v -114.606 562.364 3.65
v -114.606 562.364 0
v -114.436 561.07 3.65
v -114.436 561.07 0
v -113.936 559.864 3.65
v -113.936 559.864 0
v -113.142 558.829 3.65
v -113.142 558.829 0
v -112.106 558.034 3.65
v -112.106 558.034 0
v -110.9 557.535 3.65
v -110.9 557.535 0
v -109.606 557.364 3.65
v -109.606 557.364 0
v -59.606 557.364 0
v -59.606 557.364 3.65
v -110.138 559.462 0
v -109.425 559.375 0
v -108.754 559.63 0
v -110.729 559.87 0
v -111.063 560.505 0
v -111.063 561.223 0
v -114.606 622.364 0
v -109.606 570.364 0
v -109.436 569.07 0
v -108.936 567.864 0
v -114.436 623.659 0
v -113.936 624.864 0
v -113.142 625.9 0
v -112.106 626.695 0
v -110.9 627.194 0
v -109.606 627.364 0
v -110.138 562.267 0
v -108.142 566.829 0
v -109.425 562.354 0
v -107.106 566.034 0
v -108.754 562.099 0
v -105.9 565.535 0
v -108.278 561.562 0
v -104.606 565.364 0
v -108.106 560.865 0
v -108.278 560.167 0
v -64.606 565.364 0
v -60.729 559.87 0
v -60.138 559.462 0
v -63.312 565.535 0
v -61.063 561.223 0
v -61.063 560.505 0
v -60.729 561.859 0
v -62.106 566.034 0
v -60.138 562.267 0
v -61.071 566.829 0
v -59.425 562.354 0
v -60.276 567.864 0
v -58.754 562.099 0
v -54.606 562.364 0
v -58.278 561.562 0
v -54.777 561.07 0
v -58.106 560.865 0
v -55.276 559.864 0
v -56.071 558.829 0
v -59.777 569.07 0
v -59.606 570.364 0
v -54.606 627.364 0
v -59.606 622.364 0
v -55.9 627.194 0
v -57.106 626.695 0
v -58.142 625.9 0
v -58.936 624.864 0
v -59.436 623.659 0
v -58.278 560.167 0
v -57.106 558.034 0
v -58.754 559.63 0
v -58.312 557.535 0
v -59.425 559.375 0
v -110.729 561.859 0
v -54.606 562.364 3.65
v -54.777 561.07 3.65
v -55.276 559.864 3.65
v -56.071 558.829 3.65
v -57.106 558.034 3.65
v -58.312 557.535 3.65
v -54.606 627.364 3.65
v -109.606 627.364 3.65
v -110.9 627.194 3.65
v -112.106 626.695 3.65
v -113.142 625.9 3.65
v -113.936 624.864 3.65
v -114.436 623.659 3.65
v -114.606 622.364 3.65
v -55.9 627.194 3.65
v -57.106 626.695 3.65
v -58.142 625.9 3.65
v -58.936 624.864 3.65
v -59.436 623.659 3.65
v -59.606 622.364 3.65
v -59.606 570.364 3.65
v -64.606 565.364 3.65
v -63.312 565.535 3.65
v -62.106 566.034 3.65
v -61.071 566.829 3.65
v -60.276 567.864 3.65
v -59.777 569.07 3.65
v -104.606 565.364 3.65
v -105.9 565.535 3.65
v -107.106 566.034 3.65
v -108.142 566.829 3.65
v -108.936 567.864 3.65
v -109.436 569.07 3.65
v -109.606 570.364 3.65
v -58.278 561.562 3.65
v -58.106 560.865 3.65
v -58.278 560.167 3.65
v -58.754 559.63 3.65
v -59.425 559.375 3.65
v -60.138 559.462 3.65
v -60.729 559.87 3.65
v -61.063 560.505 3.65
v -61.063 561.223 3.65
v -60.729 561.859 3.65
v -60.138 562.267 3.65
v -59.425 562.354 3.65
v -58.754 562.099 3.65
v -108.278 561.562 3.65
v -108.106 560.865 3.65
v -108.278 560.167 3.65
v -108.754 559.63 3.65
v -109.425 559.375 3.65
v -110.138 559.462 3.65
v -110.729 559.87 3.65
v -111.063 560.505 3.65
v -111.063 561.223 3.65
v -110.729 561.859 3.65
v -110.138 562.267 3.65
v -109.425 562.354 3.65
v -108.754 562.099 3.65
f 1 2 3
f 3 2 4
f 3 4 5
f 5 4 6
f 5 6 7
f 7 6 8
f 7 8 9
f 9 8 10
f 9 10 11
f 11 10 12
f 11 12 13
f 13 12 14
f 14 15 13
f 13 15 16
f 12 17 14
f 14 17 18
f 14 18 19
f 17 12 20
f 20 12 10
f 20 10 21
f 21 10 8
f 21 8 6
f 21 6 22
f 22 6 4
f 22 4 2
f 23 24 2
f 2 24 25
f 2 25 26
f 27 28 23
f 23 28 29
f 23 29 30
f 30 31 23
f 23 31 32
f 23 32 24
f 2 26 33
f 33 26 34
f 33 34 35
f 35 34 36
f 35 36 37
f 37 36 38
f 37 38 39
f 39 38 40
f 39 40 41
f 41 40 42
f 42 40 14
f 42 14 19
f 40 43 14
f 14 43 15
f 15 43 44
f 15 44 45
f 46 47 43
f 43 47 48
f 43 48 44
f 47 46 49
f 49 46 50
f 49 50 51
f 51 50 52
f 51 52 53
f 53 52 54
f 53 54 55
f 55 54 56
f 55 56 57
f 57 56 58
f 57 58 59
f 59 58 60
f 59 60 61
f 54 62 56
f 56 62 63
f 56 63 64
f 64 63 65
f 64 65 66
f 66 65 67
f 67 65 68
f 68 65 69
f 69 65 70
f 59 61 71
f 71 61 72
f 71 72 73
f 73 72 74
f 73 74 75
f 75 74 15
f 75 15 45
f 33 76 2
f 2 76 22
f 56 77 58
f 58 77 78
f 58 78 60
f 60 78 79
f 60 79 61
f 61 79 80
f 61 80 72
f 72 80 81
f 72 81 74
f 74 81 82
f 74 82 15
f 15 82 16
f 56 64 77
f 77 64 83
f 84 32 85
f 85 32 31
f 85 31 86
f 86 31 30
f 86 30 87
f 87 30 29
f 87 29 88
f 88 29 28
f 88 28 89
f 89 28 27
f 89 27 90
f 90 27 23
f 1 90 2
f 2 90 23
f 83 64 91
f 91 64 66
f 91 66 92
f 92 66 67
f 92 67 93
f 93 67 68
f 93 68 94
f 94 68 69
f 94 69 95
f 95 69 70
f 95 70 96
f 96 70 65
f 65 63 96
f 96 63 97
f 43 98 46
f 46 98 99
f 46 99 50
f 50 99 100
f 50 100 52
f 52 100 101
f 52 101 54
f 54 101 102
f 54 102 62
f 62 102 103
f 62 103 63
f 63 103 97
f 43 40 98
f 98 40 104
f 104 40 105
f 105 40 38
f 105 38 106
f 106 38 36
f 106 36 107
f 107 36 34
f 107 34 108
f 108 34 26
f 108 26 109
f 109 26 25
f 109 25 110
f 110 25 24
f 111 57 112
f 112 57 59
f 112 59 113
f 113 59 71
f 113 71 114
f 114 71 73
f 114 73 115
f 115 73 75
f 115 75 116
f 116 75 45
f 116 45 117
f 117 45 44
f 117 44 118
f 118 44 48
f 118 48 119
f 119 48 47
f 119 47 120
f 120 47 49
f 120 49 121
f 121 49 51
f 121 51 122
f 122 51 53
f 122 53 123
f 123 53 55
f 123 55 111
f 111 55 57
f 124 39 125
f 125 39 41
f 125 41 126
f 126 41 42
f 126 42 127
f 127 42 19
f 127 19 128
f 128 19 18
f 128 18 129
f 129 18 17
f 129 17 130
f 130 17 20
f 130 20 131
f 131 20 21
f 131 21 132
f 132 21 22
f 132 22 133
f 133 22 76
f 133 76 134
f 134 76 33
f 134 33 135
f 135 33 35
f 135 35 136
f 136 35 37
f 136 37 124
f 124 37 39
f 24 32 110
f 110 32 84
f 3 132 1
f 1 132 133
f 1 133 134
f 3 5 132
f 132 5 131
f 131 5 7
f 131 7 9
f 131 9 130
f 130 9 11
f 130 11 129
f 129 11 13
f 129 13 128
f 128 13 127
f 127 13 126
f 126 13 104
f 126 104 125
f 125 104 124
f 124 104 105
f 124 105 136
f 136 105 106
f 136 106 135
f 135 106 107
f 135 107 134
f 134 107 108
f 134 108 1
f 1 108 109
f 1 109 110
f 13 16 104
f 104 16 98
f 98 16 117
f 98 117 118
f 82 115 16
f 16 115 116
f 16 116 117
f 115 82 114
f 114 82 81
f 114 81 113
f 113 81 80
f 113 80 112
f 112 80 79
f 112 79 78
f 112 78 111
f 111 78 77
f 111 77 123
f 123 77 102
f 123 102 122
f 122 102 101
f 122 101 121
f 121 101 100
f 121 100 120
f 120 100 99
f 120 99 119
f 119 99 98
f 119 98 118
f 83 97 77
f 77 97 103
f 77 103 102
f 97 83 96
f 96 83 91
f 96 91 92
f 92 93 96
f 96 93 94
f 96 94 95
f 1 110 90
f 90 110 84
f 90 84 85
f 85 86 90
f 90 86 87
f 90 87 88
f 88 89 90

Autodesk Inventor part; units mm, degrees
ref_plane "YZ Plane" through (0, 0, 0) normal (1, 0, 0) x (0, 1, 0)
ref_plane "XZ Plane" through (0, 0, 0) normal (0, 1, 0) x (-1, 0, 0)
ref_plane "XY Plane" through (0, 0, 0) normal (0, 0, 1) x (1, 0, 0)
ref_plane "РабПлоскость1" through (0, 0, 0) normal (0, 0, 1) x (1, 0, 0)
sketch "Эскиз1" plane through (0, 0, 0) normal (0, 0, 1) x (1, 0, 0)
  line L0 (-54.6061, 570.3445) -> (-45.6061, 570.3445) projected
  line L1 (-45.6061, 570.3445) -> (-45.6061, 587.3445) projected
  line L2 (-45.6061, 587.3445) -> (-54.6061, 587.3445) projected
  line L3 (-54.6061, 587.3445) -> (-54.6061, 627.3645) projected
  line L4 (-54.6061, 627.3645) -> (-114.6061, 627.3645) projected
  line L5 (-114.6061, 627.3645) -> (-114.6061, 587.3445) projected
  line L6 (-114.6061, 587.3445) -> (-123.6061, 587.3445) projected
  line L7 (-123.6061, 587.3445) -> (-123.6061, 570.3445) projected
  line L8 (-123.6061, 570.3445) -> (-114.6061, 570.3445) projected
  line L9 (-114.6061, 570.3445) -> (-114.6061, 557.3645) projected
  line L10 (-114.6061, 557.3645) -> (-54.6061, 557.3645) projected
  line L11 (-54.6061, 557.3645) -> (-54.6061, 570.3445) projected
  line L12 (-48.6061, 575.3445) -> (-51.6061, 575.3445) projected
  line L13 (-51.6061, 575.3445) -> (-51.6061, 582.3445) projected
  line L14 (-51.6061, 582.3445) -> (-48.6061, 582.3445) projected
  line L15 (-48.6061, 582.3445) -> (-48.6061, 575.3445) projected
  line L16 (-117.6061, 582.3445) -> (-117.6061, 575.3445) projected
  line L17 (-117.6061, 575.3445) -> (-120.6061, 575.3445) projected
  line L18 (-120.6061, 575.3445) -> (-120.6061, 582.3445) projected
  line L19 (-120.6061, 582.3445) -> (-117.6061, 582.3445) projected
  circle A0 centre (-97.1061, 577.3245) radius 2.575 projected
  circle A1 centre (-72.1061, 577.3245) radius 2.575 projected
  circle A2 centre (-72.1061, 617.3645) radius 2.575 projected
  circle A3 centre (-97.1061, 617.3645) radius 2.575 projected
  circle A4 centre (-109.6061, 560.8645) radius 1.5 projected
  circle A5 centre (-59.6061, 560.8645) radius 1.5 projected
  circle A6 centre (-106.1061, 572.3645) radius 1 projected
  circle A7 centre (-63.1061, 572.3645) radius 1 projected
  circle A8 centre (-106.1061, 587.3645) radius 1 projected
  circle A9 centre (-63.1061, 587.3645) radius 1 projected
  circle A10 centre (-106.1061, 602.3645) radius 1 projected
  circle A11 centre (-63.1061, 602.3645) radius 1 projected
  circle A12 centre (-106.1061, 617.3645) radius 1 projected
  circle A13 centre (-63.1061, 617.3645) radius 1 projected
  line L20 (-59.6061, 627.3645) -> (-54.6061, 627.3645)
  line L21 (-54.6061, 627.3645) -> (-54.6061, 557.3645)
  line L22 (-54.6061, 557.3645) -> (-59.6061, 557.3645)
  line L23 (-59.6061, 557.3645) -> (-59.6061, 627.3645)
  line L24 (-54.6061, 557.3645) -> (-114.6061, 557.3645)
  line L25 (-114.6061, 557.3645) -> (-114.6061, 565.3645)
  line L26 (-114.6061, 565.3645) -> (-54.6061, 565.3645)
  line L27 (-54.6061, 565.3645) -> (-54.6061, 557.3645)
  line L28 (-114.6061, 557.3645) -> (-109.6061, 557.3645)
  line L29 (-109.6061, 557.3645) -> (-109.6061, 627.3645)
  line L30 (-109.6061, 627.3645) -> (-114.6061, 627.3645)
  line L31 (-114.6061, 627.3645) -> (-114.6061, 557.3645)
  circle A14 centre (-59.6061, 560.8645) radius 1.5
  circle A15 centre (-109.6061, 560.8645) radius 1.5
  point P0 (0, 0)
  point P1 (-59.6061, 565.3645)
  point P2 (-109.6061, 565.3645)
  dimension "d0" = 5
  dimension "d1" = 5
  dimension "d2" = 8
extrude "Выдавливание1" add sketch "Эскиз1" along normal blind 3.65 contours L11 L26 L23 L4 L3 L21 | L11 L10 L23 A5 L26 | L23 A5 L10 L29 A4 L26 | L29 A4 L10 L9 L26 | L26 L9 L31 L5 L4 L29
fillet "Сопряжение грани1" radius 5 1 edges at (-109.6061, 565.3645, 1.825)
fillet "Сопряжение грани2" radius 5 1 edges at (-59.6061, 565.3645, 1.825)
fillet "Сопряжение грани3" radius 5 1 edges at (-59.6061, 627.3645, 1.825)
fillet "Сопряжение грани4" radius 5 1 edges at (-114.6061, 627.3645, 1.825)
feature "Сопряжение грани5" [suppressed]
feature "Сопряжение грани6" [suppressed]
fillet "Сопряжение грани7" radius 5 1 edges at (-54.6061, 557.3645, 1.825)
fillet "Сопряжение грани8" radius 5 1 edges at (-114.6061, 557.3645, 1.825)
properties part number "соединялка"
